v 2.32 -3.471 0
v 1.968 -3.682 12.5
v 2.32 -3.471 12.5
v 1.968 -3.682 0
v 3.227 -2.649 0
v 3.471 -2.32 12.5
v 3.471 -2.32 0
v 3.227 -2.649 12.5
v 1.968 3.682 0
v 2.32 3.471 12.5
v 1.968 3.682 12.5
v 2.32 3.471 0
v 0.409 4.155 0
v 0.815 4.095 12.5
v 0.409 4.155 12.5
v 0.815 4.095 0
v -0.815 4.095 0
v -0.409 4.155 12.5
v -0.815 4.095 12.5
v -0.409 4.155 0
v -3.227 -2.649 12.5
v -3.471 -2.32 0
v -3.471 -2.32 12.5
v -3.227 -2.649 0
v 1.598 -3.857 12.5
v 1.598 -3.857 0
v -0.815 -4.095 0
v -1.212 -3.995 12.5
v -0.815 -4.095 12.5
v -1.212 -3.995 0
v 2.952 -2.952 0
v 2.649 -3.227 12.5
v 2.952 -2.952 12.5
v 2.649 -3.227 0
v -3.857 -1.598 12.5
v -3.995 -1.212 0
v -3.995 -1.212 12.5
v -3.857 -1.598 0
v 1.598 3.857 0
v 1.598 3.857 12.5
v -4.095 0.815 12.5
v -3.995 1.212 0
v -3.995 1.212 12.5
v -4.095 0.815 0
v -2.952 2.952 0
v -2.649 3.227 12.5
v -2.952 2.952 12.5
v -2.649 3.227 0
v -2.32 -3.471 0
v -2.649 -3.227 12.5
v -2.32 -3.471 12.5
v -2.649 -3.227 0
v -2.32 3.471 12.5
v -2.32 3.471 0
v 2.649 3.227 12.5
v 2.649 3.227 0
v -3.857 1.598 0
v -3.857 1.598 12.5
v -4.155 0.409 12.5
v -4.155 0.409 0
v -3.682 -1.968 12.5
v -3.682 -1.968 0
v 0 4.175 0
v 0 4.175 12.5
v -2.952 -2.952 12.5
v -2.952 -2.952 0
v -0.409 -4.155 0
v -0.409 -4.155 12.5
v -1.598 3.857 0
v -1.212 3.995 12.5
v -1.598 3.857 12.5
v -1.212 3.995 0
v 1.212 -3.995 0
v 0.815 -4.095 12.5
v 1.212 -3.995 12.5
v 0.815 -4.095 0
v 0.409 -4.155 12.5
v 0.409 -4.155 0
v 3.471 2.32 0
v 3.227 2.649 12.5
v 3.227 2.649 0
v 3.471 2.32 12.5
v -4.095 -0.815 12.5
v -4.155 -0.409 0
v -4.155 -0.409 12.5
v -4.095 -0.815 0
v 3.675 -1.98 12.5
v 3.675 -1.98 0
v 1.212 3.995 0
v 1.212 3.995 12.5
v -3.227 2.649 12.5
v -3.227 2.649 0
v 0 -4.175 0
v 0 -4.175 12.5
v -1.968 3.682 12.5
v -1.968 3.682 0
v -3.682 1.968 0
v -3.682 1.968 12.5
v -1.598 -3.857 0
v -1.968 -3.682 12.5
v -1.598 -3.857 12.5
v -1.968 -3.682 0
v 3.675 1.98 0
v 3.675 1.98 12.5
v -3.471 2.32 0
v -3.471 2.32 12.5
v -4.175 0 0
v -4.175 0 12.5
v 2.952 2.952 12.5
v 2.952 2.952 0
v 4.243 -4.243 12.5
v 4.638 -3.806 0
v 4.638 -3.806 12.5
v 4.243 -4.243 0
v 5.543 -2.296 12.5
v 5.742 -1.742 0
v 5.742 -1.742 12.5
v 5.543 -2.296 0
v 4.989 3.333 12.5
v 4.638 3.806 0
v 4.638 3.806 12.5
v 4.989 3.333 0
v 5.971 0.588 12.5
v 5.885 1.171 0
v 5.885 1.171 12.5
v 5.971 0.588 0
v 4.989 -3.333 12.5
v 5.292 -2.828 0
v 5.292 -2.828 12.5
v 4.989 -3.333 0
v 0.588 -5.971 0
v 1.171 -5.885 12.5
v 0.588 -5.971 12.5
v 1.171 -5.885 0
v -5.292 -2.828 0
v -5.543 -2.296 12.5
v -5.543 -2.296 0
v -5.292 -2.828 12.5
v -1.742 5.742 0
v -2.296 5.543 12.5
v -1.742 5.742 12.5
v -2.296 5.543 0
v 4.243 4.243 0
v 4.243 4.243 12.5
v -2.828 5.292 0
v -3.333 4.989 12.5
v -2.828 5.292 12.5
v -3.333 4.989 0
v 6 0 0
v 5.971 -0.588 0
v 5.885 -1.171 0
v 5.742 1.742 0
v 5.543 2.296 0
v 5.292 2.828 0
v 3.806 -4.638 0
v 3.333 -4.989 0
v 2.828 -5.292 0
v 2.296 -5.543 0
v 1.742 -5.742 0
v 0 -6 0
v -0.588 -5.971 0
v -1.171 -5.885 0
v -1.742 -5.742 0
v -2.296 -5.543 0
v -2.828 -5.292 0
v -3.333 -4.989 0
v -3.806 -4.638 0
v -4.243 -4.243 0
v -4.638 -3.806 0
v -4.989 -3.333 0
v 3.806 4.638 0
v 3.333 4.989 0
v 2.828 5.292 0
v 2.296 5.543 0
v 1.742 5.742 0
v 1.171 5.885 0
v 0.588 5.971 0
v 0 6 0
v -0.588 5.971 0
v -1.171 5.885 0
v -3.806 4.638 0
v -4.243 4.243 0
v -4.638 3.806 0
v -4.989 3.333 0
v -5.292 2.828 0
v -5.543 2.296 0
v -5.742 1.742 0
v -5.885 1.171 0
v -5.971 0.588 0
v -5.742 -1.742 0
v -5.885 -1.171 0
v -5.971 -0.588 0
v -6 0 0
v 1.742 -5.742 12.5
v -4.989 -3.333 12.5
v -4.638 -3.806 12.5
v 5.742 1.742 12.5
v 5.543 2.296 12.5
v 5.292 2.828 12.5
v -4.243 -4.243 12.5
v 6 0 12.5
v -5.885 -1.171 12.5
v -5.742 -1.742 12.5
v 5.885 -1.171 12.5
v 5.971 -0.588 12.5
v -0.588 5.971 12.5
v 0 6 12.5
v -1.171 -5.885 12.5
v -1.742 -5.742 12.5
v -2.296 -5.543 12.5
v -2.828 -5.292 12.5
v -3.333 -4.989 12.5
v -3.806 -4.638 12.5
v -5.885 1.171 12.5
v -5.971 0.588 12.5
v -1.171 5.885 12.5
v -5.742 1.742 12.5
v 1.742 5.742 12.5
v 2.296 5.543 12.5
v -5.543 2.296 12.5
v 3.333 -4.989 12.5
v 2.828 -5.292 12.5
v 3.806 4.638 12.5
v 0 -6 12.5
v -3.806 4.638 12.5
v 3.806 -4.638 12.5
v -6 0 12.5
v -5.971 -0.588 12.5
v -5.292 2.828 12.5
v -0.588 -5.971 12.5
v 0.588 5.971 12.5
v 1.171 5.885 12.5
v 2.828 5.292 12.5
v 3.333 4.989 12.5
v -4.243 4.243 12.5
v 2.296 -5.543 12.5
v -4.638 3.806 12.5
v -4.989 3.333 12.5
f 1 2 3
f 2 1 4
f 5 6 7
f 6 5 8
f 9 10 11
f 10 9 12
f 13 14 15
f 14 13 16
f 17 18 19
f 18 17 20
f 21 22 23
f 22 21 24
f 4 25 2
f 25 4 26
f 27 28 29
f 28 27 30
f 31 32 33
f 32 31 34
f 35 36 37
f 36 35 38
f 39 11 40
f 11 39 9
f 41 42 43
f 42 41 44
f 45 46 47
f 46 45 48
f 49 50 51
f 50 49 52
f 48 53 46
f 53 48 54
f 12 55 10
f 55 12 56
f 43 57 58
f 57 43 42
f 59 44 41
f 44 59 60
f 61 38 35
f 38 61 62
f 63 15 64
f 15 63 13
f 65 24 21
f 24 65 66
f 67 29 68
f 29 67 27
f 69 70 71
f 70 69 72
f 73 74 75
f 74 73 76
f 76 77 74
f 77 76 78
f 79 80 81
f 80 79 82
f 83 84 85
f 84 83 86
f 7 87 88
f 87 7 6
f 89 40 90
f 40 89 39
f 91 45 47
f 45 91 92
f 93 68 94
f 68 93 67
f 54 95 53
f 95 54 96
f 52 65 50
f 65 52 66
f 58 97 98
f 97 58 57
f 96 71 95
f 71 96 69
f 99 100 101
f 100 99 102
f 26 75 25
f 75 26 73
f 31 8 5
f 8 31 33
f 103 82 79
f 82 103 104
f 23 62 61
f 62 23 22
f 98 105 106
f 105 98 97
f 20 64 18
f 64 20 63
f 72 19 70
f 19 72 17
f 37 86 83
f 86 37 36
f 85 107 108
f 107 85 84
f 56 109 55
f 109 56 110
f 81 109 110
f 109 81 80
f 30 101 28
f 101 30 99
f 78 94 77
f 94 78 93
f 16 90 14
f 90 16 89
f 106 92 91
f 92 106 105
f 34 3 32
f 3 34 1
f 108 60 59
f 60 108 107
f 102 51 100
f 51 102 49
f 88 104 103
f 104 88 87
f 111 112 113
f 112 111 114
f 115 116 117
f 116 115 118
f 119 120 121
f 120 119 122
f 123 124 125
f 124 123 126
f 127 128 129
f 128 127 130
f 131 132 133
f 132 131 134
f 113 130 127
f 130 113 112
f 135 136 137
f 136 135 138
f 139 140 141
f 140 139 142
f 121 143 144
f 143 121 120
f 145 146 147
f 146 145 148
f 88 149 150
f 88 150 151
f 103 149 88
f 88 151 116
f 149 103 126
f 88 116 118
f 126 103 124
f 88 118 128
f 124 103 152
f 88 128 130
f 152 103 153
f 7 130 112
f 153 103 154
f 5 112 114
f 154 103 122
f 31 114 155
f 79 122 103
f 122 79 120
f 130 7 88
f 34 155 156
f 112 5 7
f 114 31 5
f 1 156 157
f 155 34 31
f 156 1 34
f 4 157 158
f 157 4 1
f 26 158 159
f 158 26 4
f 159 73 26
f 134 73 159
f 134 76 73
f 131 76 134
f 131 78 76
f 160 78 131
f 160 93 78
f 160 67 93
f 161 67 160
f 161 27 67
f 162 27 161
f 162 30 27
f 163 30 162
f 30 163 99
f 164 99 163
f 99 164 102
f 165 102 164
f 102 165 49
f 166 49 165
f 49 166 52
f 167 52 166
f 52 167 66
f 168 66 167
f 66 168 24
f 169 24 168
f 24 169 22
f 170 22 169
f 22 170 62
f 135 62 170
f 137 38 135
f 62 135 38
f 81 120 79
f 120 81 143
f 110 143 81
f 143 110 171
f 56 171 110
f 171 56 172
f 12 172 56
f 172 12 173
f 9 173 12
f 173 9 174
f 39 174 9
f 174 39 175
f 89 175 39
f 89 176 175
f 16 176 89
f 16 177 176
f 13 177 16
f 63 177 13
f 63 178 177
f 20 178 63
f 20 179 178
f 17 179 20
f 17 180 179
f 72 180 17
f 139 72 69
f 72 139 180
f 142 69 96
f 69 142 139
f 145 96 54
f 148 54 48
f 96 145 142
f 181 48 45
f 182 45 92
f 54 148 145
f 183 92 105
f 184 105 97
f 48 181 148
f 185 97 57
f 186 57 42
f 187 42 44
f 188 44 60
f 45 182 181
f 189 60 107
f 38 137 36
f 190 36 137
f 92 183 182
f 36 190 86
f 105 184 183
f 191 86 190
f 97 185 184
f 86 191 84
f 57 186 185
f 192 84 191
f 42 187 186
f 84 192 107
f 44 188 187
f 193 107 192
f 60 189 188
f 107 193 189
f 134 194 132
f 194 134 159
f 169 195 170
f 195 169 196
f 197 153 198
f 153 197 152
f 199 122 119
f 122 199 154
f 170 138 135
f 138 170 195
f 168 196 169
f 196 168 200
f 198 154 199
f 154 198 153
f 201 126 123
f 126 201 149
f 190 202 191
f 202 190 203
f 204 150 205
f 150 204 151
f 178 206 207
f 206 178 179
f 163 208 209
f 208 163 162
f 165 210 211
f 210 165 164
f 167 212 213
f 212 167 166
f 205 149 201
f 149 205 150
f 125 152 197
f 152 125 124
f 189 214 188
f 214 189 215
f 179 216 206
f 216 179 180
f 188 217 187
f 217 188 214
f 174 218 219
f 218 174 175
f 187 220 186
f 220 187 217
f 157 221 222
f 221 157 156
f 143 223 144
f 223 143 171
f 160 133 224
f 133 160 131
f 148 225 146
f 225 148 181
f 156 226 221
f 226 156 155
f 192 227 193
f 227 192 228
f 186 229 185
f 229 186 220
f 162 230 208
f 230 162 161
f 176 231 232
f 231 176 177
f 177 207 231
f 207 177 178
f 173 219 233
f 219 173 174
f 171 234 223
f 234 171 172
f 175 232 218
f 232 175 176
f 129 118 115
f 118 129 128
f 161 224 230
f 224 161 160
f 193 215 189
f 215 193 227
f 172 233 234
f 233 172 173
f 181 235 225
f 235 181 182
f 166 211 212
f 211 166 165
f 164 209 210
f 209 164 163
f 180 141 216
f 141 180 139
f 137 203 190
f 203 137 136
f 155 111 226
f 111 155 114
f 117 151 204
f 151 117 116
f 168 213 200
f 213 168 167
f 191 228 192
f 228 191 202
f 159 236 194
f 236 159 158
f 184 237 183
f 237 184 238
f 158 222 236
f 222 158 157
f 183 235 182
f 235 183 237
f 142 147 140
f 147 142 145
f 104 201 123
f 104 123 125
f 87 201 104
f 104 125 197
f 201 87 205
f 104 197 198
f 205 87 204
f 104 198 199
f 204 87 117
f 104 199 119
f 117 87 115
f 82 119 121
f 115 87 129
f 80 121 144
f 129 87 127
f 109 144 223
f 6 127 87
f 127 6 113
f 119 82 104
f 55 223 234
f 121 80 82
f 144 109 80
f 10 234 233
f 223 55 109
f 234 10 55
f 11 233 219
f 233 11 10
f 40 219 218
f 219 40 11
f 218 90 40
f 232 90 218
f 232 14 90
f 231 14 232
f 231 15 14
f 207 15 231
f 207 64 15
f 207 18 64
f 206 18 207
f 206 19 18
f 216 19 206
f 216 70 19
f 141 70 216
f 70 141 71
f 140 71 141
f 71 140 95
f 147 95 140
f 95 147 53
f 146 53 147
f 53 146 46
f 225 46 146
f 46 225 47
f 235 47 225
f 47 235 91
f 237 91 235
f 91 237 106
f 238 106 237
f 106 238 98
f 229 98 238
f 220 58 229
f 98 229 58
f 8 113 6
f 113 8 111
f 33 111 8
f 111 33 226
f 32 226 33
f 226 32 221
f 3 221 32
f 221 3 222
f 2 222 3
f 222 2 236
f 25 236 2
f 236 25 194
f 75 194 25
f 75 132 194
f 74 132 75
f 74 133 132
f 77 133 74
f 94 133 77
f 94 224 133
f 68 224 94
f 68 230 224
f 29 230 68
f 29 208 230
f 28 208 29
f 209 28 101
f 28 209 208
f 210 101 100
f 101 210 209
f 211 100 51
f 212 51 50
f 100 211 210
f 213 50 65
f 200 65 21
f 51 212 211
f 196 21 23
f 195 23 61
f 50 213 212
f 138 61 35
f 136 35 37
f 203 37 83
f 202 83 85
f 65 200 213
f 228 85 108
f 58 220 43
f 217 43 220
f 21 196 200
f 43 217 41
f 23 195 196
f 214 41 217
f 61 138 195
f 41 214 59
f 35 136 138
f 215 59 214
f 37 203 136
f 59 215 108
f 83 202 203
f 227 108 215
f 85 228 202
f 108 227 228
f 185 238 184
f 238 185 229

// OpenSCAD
// file: parameters.scad
// =============================================================================
// Gen-BG — nightly 2026-10-04 (physics_scorer, honest magpylib watts)
// 8-pole / 9-coil dual rotor (best winding factor 0.945) pushed out to RL 46 with 9.9 mm tall copper on steel-seated magnets; 3 smaller coils per phase and less wire (257 m) than 6-coil.
// Clocking 0 deg (magnets N facing S) + D-flat keyed bore + index notch + flip-symmetric hole map.
// Windable 2-piece bobbin; turns = physics_scorer turns_fit; copper only between flanges.
// Steel back-iron: two 3.0 mm mild-steel discs (steel_backiron_disc.dxf); magnets sit ON the steel
// (through-pockets) -> score with --back-iron.
// =============================================================================
topology            = "dual_rotor";

// --- Wire / winding (physics_scorer winding-fit) -------------------------------
wire_awg            = 26;
wire_od             = 0.45;     // insulated OD mm (bare 0.405)
fill_realistic      = 0.60;     // insulated-wire area / window, hand-wound layered
turns               = 364;       // = physics_scorer turns_fit (do NOT raise)
coil_former_type    = "bobbin";
coil_core_inset     = 9.75;     // radial copper build: hub = copper boundary inset by this
wind_build_axial    = 0.0;      // nothing proud of the flanges
wind_build_radial   = 0.0;

// --- Bobbin (base + lid) ---------------------------------------------------------
coil_id_r           = 30.00;    // copper boundary sector
coil_od_r           = 62.00;
span_deg            = 32.93;    // = pitch - 2*asin((wall+0.85)/coil_id_r) -> >=1.2 mm stator web
former_web          = 9.90;     // copper height between flanges (TALL copper: steel keeps Bz up)
flange_t            = 0.80;     // >= 0.8 mm FDM wall rule (tall winds push on the flanges)
wall                = 1.00;     // flange lip beyond copper
former_bare_h       = former_web + 2 * flange_t;
coil_envelope_h     = former_bare_h + 2 * wind_build_axial;
tab_w               = 7.0;
tab_len             = 7.0;
tab_h               = former_bare_h / 2;
pin_d               = 1.9;      // 1.75 mm filament locating pin
coil_mount_r        = coil_od_r + 0.2 + 4.0;
lead_y              = 1.6;
lead_slot_w         = 0.9;
lead_groove_d       = 0.6;

// --- Gap -------------------------------------------------------------------------
run_clear           = 0.50;     // rotor face -> flange
gap_spacer_h        = run_clear + wind_build_axial;
m2m                 = coil_envelope_h + 2 * run_clear;   // rotor face to rotor face (= gap_sleeve length)

// --- Stator ----------------------------------------------------------------------
coil_stations       = 9;
bay_clear           = 0.25;
stator_thick        = former_bare_h;                        // bobbins flush both faces
stator_od           = 157.0;
shaft_clear_stator  = 14.0;     // stator is static; gap sleeve OD 12 spins inside

// --- Rotor(s) --------------------------------------------------------------------
magnet_Br           = 1.43;     // N52
magnet_d_large      = 20.0;
magnet_h_large      = 5.0;      // one O20x5 per pocket
magnet_h_small      = 5.0;      // one O5x5 per pocket
halbach_magnetisation = "diametric"; // O5x5 assist magnets MUST be DIAMETRICALLY magnetised (tangential)
rotor_b_same_axis   = true;     // same-index magnets share one axis: N faces S across the gap
large_pocket_d      = 20.3;
small_pocket_d      = 5.3;
pocket_h            = 5.10;     // THROUGH the carrier: magnet back face sits on the steel disc
large_n             = 8;
R_large             = 46.0;
R_small_inner       = 32.0;
R_small_mid         = 46.0;
R_small_outer       = 63.0;
small_r_list        = [R_small_inner, R_small_mid, R_small_outer];   // O5 pockets between poles
carrier_od          = 135.0;
carrier_thick       = pocket_h;
hub_h               = 10.0;
hub_od              = 24.0;     // slim hub so the M4 brace rods fit at R~18 inside the coil ring
hub_insert_d        = 4.0;      // M3 heat-set insert, radial, bears on the D-flat
rotor_b_offset_deg  = 0.0;      // CLOCKING: magnets directly opposite
shaft_key           = "dflat";
dflat_depth         = 0.5;      // 8 mm shaft with 0.5 mm flat (7.5 across flat)
index_notch_d       = 3.0;

// --- Steel back-iron (buyable laser-cut) -------------------------------------------
steel_t             = 3.0;      // mild steel thickness (not modelled by the image method; >=3 avoids saturation)
steel_center_hole   = 26.0;     // slips over the rotor hub (OD 24)

// --- Modular MAX interface ----------------------------------------------------------
shaft_bore          = 8.35;
dflat_x             = 4.0 - dflat_depth + (shaft_bore - 8.0) / 2;
bearing_d           = 21.85;
bearing_h           = 7.2;
m3_clear            = 3.5;
bolt_r_inner        = 27.0;     // M3 steel-disc clamp bolts (inside the magnet ring)
bolt_n_inner        = 4;
bolt_inner_angles   = [0, 90, 180, 270];
bolt_r_outer        = 59.0;     // M3 steel-disc clamp bolts (outside the magnet ring)
bolt_outer_angles   = [0, 90, 180, 270];
flange_bolt_r       = 73.5;     // frame rods: OUTSIDE the rotor OD (rotors spin inside them)
flange_bolt_n       = 9;
flange_bolt_offset  = 20.00;    // between coil stations -> never cuts a lead groove/tab
brace_r             = 18.0;
brace_d             = 4.3;      // temporary M4 jack rods (assembly only)
brace_n             = 4;
brace_angles        = [45, 135, 225, 315];          // flip-symmetric

spacer_pad_od       = 14.0;
spacer_pad_id       = m3_clear;
endbell_od          = 157.0;
endbell_thick       = 8.0;
endbell_shaft_clear = 10.0;
collar_h            = 10.0;
standoff_od         = 9.0;
frame_standoff_h    = run_clear + carrier_thick + hub_h + collar_h + 2.0;
sleeve_od           = 12.0;
plate_max_mm        = 410;

$fn = 64;
// main file
// Gen-BG — gap sleeve: rigid spacer on the shaft BETWEEN the two rotor carriers (passes through the stator
// hole). Length = m2m, so it sets the magnet gap and carries the full magnet pull. Print x1, upright.
include <parameters.scad>;
$fn = 64;
// D-flat keyed bore: flat faces +X (angle 0 = magnet pocket 0 = index notch)
module dflat_bore(h) {
    intersection() {
        cylinder(d=shaft_bore, h=h);
        translate([-shaft_bore, -shaft_bore, 0]) cube([shaft_bore + dflat_x, 2*shaft_bore, h]);
    }
}

difference() {
    cylinder(d=sleeve_od, h=m2m);
    translate([0, 0, -0.1]) dflat_bore(m2m + 0.2);
}
